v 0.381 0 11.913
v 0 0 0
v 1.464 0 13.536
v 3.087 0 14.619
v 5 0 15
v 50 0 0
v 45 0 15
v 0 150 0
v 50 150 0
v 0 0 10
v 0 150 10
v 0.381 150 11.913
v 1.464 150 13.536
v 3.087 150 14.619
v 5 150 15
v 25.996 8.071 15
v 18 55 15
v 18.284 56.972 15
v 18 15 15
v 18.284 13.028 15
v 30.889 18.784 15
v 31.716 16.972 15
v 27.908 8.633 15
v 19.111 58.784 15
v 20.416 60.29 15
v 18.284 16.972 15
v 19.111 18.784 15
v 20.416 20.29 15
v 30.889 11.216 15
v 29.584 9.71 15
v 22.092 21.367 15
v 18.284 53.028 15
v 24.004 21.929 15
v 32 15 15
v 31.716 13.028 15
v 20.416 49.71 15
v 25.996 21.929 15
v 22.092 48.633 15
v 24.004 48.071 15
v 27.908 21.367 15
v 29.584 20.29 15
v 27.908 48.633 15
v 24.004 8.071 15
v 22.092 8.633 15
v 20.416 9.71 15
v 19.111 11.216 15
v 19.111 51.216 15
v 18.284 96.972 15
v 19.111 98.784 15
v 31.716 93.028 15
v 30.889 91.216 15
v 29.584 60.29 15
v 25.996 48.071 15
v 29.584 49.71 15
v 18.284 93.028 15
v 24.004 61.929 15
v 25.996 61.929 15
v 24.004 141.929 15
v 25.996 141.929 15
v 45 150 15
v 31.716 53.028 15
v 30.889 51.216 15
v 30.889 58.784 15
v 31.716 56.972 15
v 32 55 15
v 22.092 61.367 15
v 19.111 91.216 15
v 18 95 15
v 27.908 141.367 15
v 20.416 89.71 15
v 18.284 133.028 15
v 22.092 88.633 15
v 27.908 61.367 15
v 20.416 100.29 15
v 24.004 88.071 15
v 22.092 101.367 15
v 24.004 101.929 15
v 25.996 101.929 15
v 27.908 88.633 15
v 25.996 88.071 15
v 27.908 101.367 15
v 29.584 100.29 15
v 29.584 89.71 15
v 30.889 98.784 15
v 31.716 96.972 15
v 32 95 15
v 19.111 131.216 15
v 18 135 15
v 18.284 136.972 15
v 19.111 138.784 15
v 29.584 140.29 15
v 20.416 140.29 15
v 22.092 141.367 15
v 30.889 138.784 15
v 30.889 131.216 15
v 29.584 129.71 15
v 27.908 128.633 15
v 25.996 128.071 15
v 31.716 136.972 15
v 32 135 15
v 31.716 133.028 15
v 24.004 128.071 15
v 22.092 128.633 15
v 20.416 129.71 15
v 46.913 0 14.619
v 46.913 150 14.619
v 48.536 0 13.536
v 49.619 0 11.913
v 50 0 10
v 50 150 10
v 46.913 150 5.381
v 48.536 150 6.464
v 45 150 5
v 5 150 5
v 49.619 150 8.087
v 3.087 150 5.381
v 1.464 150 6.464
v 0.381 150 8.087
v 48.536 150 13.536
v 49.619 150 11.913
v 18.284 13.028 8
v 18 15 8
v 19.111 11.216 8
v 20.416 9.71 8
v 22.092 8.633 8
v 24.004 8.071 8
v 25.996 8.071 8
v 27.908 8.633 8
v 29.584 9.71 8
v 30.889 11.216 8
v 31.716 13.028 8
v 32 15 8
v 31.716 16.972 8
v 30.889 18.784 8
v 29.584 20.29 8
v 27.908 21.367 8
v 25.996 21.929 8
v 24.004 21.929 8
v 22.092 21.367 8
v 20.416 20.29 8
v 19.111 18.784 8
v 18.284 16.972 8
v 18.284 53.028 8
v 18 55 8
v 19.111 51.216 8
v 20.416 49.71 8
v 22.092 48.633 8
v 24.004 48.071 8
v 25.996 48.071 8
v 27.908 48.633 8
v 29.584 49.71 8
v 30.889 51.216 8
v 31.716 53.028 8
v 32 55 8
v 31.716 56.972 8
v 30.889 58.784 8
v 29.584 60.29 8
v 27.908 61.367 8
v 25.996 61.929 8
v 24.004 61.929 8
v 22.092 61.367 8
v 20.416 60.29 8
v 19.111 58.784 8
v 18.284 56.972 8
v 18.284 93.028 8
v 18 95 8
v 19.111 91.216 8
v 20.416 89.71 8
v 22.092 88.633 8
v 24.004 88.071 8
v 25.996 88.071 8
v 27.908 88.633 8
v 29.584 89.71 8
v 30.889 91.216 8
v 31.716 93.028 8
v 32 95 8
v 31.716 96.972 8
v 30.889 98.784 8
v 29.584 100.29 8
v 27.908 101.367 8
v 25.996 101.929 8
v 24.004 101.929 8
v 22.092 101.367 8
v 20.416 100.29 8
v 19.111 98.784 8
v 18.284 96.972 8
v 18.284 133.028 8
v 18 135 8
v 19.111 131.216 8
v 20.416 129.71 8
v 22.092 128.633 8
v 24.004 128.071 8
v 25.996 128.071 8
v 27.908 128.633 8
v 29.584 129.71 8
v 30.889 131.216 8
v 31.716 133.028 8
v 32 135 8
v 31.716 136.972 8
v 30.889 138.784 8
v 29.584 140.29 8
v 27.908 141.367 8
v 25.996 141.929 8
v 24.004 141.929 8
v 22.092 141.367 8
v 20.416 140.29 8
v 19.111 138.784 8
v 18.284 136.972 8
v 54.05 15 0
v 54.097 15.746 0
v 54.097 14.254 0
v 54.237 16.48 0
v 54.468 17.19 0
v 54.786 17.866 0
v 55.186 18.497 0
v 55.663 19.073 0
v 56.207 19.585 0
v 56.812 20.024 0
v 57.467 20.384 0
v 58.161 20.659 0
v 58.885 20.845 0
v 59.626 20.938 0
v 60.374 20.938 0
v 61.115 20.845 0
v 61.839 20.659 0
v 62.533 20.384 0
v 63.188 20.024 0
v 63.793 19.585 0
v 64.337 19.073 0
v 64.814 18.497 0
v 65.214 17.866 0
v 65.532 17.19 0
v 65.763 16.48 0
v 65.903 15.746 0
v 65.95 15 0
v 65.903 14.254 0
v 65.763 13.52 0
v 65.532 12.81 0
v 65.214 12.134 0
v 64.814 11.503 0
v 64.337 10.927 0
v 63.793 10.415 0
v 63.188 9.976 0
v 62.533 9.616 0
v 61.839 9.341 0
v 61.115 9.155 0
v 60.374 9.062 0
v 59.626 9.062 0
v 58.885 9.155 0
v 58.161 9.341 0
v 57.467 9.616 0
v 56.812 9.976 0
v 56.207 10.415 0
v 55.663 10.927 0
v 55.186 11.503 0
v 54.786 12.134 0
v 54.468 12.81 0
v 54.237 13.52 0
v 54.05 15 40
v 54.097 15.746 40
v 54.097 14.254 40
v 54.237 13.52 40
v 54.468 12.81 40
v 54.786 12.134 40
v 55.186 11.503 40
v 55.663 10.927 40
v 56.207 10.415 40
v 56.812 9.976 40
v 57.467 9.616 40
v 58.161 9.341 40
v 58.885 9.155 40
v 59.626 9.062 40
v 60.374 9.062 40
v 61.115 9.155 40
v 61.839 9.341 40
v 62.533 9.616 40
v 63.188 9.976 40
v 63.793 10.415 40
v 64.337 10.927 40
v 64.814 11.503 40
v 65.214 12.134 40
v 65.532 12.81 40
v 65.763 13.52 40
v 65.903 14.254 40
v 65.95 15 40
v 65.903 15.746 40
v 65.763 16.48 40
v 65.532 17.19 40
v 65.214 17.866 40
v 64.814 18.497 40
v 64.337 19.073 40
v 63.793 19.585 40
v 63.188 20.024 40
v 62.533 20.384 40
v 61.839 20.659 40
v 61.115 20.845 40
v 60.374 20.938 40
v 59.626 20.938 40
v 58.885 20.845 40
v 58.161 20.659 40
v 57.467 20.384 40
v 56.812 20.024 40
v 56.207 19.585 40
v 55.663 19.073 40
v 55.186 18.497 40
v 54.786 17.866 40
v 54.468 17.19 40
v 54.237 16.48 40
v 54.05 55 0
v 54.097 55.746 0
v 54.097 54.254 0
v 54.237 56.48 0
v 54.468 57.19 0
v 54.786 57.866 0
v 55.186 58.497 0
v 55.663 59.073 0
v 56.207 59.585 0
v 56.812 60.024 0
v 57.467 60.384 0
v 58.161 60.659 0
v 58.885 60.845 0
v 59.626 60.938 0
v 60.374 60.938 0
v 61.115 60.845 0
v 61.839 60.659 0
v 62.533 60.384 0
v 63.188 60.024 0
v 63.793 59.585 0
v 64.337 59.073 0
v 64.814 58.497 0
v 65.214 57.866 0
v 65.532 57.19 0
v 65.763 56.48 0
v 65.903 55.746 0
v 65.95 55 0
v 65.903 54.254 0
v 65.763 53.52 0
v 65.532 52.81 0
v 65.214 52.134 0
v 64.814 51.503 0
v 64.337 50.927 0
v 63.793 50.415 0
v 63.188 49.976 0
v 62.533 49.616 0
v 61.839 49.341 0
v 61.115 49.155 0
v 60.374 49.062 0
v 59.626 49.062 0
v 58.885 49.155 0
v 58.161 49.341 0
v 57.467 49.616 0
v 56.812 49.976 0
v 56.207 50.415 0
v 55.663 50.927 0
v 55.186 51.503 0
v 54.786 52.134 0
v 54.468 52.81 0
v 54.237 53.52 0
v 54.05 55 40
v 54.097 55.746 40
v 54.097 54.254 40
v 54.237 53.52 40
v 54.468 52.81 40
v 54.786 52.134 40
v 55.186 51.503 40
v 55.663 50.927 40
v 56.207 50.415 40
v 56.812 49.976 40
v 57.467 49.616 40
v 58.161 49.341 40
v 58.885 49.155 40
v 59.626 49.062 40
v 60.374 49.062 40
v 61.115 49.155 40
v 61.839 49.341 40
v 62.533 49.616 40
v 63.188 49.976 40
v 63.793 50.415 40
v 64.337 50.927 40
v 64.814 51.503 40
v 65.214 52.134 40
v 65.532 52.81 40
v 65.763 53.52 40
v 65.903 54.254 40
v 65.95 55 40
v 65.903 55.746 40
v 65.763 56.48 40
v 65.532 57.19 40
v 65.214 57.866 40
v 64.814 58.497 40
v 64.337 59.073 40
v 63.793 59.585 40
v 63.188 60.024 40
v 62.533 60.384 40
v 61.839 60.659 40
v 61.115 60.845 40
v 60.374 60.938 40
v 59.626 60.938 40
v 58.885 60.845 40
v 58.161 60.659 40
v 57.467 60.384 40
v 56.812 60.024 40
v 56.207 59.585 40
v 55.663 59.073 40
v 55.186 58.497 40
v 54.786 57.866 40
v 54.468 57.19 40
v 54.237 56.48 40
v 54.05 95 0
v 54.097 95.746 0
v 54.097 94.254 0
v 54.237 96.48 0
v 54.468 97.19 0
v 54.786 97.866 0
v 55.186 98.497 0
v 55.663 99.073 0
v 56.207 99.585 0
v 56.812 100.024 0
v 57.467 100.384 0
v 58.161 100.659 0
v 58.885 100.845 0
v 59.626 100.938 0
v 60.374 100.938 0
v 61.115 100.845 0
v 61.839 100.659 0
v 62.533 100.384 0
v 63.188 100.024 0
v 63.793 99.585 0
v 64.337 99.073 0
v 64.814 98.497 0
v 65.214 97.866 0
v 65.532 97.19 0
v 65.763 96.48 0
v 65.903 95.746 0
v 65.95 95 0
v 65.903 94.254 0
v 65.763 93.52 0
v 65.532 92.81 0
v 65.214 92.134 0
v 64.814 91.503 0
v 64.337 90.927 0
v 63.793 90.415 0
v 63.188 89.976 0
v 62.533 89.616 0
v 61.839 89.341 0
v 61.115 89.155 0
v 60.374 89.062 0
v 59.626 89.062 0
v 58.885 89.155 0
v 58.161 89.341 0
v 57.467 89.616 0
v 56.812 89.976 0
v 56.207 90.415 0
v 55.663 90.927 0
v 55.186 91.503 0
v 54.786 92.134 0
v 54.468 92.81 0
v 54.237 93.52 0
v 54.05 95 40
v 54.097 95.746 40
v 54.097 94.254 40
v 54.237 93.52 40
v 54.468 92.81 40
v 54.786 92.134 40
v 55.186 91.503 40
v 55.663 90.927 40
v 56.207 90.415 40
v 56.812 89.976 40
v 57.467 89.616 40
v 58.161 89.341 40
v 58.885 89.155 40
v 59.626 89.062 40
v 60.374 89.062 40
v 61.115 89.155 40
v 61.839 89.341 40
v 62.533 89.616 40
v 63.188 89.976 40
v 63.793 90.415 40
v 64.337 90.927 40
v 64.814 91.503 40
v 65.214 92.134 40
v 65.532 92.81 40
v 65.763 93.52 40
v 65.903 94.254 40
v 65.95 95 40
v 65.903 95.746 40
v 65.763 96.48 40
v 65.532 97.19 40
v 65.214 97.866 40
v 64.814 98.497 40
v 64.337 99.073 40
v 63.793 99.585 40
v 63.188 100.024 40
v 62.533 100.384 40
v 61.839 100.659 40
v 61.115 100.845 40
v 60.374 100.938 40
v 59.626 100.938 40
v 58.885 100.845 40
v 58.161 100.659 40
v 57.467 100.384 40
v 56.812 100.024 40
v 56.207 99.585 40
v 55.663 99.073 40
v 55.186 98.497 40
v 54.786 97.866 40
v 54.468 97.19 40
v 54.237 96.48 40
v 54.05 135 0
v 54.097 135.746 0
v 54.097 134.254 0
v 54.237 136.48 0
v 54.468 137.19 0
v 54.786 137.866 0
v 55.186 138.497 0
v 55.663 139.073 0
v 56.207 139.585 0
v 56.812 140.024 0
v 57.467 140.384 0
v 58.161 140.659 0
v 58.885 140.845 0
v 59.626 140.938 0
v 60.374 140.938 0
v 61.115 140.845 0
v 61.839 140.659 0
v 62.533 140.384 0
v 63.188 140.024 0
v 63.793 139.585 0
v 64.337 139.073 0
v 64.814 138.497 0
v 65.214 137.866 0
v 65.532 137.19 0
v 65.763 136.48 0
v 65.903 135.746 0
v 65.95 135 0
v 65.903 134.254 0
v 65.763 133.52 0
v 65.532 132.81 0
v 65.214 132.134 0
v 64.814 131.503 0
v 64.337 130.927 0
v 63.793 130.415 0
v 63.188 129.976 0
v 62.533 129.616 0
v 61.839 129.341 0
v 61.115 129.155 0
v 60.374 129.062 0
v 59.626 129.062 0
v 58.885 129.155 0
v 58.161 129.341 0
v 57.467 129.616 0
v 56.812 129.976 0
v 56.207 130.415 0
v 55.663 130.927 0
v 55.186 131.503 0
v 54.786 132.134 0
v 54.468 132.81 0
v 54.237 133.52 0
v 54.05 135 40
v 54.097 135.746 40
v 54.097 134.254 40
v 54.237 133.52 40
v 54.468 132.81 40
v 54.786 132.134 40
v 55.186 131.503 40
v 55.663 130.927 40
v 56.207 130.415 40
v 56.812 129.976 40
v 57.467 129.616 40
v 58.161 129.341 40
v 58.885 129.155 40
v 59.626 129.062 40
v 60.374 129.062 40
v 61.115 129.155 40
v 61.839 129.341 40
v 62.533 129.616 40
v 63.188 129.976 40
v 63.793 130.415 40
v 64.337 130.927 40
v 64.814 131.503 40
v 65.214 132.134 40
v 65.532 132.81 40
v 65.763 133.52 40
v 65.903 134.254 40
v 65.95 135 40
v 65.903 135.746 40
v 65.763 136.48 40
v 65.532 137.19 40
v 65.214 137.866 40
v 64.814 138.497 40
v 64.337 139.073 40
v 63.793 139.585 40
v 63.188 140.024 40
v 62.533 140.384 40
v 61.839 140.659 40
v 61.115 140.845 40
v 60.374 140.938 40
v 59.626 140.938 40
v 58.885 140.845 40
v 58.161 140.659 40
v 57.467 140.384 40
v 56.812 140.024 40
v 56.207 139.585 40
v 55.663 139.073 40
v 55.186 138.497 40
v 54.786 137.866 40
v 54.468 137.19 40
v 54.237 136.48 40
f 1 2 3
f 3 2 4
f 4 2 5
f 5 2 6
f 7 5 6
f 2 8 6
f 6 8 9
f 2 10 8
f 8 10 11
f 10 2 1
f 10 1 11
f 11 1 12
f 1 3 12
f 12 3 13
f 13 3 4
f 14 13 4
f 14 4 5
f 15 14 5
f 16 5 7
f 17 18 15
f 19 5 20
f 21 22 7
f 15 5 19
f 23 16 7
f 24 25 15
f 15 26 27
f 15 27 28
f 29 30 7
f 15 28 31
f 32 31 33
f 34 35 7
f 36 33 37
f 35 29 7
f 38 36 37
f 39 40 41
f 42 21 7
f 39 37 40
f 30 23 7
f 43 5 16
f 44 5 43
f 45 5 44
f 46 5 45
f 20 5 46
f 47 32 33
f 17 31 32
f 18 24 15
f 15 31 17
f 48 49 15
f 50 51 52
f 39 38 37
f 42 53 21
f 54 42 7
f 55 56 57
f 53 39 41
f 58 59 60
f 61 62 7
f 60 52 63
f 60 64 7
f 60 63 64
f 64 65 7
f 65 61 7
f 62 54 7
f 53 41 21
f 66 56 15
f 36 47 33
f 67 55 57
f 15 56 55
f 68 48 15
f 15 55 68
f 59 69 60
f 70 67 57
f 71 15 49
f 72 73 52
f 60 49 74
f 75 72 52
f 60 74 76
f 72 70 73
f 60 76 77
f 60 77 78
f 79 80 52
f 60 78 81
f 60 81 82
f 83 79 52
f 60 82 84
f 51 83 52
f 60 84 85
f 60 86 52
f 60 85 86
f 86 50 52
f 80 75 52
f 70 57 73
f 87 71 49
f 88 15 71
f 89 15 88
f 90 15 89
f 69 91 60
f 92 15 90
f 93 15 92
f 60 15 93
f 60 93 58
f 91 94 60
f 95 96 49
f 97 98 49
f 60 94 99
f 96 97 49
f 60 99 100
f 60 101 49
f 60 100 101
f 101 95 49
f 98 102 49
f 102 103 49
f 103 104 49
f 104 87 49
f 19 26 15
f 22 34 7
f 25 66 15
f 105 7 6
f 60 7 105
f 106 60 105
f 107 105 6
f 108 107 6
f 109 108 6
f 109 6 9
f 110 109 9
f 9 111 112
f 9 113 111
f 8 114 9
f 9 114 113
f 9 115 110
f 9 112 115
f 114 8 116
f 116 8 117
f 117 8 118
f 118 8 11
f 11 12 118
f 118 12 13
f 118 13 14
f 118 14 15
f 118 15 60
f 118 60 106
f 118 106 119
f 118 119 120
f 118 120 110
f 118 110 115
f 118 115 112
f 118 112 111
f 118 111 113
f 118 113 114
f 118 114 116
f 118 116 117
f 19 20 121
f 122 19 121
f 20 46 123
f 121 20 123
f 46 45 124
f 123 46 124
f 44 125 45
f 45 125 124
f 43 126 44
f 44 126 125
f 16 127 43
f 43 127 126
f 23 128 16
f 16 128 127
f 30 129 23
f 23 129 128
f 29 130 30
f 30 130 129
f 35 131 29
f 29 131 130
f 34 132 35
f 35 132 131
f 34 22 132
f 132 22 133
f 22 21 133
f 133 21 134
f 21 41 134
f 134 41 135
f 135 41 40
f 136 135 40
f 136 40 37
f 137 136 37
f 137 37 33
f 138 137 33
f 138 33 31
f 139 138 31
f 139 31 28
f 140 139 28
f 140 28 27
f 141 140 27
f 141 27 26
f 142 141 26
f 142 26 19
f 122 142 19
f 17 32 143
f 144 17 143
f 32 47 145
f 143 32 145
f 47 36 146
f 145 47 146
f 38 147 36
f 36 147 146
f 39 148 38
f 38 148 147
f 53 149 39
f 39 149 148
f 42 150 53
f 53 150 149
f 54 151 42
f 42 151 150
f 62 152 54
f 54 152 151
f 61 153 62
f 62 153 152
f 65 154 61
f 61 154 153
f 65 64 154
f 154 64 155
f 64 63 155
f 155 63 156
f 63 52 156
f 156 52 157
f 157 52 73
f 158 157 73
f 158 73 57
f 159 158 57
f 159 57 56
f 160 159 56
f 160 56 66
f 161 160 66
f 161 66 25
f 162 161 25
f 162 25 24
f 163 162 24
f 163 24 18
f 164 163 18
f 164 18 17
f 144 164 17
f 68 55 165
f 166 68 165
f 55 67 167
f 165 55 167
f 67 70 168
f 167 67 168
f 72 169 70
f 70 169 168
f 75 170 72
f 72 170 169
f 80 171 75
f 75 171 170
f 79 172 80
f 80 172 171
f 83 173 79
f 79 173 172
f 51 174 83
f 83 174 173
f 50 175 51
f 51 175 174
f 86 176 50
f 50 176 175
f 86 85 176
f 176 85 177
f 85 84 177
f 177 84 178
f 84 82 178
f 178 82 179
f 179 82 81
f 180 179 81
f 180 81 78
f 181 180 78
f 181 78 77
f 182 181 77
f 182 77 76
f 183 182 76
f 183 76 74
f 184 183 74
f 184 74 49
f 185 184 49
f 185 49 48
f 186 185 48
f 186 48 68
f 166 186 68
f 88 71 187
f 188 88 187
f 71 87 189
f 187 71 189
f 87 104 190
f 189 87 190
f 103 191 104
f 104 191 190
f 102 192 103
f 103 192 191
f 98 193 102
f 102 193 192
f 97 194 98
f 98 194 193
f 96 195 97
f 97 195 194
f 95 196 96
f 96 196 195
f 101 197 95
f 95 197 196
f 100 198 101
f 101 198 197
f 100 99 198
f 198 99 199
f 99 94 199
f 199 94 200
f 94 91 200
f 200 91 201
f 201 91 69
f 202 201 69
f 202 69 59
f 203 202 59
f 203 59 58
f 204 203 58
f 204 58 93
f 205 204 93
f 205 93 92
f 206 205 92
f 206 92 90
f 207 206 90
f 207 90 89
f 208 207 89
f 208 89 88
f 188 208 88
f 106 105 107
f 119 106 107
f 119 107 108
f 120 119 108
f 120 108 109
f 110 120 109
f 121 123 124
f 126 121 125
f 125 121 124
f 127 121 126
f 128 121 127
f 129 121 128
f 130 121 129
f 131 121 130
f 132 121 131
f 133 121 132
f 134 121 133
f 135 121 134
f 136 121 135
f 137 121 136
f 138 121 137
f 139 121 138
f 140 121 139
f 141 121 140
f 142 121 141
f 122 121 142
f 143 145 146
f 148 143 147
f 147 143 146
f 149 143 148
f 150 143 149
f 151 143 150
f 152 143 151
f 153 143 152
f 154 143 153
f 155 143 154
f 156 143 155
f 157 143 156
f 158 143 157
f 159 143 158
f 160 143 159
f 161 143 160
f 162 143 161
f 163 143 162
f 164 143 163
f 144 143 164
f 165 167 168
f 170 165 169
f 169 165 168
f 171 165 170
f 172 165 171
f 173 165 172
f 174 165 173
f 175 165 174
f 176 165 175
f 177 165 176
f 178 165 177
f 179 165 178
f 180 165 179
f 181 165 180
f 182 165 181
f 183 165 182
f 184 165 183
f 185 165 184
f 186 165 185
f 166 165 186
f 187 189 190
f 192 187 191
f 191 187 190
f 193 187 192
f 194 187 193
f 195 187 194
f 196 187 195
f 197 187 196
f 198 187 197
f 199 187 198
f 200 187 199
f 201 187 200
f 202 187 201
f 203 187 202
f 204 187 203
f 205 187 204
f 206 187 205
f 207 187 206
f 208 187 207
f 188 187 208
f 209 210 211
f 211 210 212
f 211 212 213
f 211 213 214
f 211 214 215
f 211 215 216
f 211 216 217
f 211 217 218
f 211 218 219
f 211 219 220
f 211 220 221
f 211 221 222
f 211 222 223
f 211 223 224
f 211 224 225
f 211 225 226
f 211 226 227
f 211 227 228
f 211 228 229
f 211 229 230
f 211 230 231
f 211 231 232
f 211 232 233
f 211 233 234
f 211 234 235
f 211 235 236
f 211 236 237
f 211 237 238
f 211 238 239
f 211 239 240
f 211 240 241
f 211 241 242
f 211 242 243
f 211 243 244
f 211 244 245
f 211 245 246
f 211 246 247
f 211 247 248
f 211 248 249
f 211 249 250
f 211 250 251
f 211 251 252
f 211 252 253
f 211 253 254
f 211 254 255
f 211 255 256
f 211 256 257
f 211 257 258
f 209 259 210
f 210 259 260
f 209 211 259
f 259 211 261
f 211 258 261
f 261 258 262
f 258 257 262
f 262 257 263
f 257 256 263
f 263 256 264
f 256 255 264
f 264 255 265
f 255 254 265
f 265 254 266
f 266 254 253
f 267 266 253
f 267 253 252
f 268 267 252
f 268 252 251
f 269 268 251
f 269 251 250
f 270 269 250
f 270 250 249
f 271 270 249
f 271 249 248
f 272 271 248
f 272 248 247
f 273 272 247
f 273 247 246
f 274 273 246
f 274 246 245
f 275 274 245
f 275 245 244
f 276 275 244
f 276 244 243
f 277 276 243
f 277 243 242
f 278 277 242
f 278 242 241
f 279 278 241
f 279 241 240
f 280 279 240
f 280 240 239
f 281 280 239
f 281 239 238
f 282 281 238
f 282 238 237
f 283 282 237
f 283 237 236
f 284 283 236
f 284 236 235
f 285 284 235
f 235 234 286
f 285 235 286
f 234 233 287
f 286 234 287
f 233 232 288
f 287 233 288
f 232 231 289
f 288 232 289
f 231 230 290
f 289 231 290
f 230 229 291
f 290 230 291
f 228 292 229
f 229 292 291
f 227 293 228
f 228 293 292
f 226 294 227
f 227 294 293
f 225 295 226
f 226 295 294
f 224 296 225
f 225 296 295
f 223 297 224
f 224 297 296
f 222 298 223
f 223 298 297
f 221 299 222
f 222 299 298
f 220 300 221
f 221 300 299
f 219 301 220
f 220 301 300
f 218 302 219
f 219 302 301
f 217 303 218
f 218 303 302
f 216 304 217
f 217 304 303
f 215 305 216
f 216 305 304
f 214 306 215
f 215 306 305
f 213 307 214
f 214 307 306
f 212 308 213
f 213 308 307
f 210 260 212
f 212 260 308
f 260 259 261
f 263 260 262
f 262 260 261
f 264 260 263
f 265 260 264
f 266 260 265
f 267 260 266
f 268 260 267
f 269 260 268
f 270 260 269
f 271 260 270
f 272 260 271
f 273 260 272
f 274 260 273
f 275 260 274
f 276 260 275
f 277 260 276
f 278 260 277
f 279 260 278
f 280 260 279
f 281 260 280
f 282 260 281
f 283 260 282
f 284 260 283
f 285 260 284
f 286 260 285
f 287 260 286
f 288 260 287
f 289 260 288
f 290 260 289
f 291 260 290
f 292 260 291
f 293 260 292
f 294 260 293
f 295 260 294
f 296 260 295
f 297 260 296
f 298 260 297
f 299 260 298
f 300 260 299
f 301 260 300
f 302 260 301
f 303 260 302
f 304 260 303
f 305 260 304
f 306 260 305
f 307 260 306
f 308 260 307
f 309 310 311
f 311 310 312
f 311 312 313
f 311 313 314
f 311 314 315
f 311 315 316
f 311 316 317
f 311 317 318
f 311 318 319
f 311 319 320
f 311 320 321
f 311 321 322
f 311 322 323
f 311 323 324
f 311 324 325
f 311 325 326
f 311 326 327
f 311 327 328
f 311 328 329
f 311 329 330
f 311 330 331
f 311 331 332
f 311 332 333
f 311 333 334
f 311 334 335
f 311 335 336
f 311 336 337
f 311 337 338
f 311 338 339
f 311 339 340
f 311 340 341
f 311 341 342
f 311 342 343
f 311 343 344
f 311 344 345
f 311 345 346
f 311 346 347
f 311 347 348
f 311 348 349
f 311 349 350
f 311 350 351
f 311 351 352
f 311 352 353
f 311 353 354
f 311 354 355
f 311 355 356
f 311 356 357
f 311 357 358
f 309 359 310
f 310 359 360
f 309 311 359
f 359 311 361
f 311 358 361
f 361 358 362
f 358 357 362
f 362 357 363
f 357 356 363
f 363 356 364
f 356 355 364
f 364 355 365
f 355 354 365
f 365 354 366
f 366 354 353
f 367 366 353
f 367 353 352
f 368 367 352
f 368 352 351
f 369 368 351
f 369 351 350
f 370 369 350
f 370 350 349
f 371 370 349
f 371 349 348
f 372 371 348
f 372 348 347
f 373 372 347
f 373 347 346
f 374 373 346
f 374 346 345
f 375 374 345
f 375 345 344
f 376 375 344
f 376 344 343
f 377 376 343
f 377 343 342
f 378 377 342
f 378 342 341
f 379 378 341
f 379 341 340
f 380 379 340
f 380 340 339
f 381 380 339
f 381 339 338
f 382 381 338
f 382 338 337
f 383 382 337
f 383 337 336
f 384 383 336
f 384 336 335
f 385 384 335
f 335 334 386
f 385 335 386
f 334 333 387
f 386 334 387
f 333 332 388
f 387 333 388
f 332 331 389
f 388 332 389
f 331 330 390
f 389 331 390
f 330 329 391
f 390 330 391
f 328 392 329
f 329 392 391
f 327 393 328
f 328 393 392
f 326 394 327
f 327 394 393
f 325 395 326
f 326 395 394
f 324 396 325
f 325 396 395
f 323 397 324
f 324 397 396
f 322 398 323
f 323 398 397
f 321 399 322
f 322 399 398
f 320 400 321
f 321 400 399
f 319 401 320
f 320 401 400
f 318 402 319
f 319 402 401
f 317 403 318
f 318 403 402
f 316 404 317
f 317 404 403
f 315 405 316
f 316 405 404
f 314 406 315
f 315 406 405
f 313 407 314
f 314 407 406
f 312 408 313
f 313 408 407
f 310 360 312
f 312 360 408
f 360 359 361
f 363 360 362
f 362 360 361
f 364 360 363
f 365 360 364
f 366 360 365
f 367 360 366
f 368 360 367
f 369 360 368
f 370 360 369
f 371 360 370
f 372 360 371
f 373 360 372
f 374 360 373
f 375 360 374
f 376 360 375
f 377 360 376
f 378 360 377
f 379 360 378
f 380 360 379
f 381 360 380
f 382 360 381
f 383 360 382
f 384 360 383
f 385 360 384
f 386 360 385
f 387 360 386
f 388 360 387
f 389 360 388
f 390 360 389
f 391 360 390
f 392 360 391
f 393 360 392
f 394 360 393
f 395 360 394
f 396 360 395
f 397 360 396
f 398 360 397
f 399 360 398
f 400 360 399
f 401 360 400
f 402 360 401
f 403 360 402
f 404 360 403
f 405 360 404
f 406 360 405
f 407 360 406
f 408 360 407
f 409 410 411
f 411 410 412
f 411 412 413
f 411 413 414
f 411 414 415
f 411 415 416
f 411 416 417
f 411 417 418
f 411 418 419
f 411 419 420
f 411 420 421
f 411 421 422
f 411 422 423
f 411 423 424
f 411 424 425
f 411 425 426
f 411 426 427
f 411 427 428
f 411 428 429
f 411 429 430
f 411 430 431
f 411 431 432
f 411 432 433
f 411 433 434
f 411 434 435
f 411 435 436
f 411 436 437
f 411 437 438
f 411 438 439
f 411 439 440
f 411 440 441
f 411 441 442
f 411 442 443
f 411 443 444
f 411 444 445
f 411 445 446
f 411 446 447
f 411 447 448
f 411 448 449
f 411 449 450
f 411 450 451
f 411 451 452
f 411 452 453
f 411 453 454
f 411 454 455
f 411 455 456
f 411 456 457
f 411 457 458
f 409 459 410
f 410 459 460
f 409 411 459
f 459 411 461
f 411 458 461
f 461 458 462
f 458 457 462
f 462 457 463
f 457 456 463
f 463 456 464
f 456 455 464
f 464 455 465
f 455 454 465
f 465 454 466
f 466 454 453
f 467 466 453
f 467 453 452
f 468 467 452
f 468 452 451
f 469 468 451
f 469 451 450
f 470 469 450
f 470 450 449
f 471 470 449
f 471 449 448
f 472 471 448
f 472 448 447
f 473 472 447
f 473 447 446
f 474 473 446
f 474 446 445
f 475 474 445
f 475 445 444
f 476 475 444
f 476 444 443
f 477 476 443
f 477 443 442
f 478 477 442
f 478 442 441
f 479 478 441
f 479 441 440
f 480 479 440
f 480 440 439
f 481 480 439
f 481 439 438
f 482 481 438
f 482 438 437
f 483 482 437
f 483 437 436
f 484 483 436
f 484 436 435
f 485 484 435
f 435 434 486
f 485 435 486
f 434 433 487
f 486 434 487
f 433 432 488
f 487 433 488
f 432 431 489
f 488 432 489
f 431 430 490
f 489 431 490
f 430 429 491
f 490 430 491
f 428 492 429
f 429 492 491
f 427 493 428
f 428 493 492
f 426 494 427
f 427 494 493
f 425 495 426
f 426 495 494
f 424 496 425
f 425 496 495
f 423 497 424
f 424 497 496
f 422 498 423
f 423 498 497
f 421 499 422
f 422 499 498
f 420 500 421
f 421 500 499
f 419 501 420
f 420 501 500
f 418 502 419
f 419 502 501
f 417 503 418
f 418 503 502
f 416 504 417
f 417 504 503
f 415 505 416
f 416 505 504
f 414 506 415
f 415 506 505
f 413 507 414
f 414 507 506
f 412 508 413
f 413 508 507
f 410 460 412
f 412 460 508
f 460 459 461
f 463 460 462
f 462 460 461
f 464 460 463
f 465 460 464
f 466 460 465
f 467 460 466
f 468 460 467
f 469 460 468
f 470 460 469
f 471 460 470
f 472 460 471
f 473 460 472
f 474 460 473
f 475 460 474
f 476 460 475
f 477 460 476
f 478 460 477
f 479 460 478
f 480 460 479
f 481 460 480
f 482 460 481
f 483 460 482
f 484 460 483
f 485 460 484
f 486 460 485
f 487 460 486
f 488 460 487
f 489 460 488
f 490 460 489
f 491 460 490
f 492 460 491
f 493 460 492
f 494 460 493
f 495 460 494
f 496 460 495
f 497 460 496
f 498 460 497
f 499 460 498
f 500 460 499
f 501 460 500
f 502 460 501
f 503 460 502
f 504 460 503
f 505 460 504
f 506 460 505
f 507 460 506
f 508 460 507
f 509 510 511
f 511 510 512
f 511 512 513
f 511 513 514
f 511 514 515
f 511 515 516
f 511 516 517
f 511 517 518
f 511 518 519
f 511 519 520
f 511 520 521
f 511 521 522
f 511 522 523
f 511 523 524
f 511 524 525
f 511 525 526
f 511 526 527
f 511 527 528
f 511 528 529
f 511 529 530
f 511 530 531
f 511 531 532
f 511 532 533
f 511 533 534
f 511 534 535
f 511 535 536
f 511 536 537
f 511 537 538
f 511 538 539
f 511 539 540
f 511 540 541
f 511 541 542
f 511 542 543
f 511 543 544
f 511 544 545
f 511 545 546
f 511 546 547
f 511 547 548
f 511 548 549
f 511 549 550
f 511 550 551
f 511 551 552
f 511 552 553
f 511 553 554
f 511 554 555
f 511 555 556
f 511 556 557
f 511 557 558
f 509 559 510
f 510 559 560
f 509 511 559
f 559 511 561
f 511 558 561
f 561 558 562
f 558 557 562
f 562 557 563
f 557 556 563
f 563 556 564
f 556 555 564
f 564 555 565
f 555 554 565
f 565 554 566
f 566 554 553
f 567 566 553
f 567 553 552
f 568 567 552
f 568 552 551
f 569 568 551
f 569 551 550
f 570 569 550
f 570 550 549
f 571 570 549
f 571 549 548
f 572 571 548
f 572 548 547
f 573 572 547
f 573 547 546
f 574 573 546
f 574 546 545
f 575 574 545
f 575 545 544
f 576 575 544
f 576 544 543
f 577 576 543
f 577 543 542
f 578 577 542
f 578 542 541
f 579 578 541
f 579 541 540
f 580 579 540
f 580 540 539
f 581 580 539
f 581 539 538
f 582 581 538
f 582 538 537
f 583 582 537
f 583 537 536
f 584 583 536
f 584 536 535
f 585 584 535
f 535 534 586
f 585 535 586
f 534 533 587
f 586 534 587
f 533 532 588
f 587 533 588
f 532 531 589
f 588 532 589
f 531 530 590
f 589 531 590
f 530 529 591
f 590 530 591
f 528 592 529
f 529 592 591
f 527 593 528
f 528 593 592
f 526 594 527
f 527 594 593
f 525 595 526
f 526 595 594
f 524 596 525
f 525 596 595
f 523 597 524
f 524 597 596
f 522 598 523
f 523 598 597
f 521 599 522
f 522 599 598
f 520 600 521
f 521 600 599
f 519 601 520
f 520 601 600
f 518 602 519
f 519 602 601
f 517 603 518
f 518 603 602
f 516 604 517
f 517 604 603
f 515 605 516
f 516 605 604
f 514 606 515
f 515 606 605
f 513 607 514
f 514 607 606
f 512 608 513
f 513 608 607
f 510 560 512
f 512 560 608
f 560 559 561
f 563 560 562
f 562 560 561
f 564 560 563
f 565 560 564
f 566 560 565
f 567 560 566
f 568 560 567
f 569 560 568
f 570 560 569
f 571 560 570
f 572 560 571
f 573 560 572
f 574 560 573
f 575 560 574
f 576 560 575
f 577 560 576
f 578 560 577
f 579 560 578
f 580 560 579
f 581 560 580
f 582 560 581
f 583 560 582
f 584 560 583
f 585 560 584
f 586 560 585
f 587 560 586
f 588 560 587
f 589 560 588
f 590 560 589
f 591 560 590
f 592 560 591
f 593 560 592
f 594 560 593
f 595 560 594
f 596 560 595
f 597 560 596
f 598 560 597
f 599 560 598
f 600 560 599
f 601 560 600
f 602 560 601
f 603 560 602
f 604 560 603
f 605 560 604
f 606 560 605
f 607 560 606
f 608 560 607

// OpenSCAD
/*
 * Adapted toys - Juguetes adaptados
 * Puzzle #1
 * 
 * Created by DViejo
 * Date 5/Nov/2014
 * 
 * 
 */

height = 15;
width = 50;
length = 150;

holeRad = 7;
holeDepth = 7; //under the surface

beamHeight = 40;
beamRad = holeRad * 0.85;

module puzzleBase()
{
  hull()
  {
    cube([width, length, height/2]);
    
    translate([5, 0, height-5]) rotate([-90, 0, 0]) cylinder(r=5, h=length);
    translate([width-5, 0, height-5]) rotate([-90, 0, 0]) cylinder(r=5, h=length);
  }
}

module puzzleHoles()
{
  for(i = [0:5])
    translate([width/2, 40*i-25, height-holeDepth]) cylinder(r=holeRad, h=2*holeDepth);
}


module puzzle1()
{
  difference()
  {
    puzzleBase();
    puzzleHoles();
  }
}

module beam()
{
  cylinder(r=beamRad, h=beamHeight, $fn=50);
}

puzzle1(); 

for(i = [1:4])
    translate([width+10, 40*i-25, 0])
  beam();
